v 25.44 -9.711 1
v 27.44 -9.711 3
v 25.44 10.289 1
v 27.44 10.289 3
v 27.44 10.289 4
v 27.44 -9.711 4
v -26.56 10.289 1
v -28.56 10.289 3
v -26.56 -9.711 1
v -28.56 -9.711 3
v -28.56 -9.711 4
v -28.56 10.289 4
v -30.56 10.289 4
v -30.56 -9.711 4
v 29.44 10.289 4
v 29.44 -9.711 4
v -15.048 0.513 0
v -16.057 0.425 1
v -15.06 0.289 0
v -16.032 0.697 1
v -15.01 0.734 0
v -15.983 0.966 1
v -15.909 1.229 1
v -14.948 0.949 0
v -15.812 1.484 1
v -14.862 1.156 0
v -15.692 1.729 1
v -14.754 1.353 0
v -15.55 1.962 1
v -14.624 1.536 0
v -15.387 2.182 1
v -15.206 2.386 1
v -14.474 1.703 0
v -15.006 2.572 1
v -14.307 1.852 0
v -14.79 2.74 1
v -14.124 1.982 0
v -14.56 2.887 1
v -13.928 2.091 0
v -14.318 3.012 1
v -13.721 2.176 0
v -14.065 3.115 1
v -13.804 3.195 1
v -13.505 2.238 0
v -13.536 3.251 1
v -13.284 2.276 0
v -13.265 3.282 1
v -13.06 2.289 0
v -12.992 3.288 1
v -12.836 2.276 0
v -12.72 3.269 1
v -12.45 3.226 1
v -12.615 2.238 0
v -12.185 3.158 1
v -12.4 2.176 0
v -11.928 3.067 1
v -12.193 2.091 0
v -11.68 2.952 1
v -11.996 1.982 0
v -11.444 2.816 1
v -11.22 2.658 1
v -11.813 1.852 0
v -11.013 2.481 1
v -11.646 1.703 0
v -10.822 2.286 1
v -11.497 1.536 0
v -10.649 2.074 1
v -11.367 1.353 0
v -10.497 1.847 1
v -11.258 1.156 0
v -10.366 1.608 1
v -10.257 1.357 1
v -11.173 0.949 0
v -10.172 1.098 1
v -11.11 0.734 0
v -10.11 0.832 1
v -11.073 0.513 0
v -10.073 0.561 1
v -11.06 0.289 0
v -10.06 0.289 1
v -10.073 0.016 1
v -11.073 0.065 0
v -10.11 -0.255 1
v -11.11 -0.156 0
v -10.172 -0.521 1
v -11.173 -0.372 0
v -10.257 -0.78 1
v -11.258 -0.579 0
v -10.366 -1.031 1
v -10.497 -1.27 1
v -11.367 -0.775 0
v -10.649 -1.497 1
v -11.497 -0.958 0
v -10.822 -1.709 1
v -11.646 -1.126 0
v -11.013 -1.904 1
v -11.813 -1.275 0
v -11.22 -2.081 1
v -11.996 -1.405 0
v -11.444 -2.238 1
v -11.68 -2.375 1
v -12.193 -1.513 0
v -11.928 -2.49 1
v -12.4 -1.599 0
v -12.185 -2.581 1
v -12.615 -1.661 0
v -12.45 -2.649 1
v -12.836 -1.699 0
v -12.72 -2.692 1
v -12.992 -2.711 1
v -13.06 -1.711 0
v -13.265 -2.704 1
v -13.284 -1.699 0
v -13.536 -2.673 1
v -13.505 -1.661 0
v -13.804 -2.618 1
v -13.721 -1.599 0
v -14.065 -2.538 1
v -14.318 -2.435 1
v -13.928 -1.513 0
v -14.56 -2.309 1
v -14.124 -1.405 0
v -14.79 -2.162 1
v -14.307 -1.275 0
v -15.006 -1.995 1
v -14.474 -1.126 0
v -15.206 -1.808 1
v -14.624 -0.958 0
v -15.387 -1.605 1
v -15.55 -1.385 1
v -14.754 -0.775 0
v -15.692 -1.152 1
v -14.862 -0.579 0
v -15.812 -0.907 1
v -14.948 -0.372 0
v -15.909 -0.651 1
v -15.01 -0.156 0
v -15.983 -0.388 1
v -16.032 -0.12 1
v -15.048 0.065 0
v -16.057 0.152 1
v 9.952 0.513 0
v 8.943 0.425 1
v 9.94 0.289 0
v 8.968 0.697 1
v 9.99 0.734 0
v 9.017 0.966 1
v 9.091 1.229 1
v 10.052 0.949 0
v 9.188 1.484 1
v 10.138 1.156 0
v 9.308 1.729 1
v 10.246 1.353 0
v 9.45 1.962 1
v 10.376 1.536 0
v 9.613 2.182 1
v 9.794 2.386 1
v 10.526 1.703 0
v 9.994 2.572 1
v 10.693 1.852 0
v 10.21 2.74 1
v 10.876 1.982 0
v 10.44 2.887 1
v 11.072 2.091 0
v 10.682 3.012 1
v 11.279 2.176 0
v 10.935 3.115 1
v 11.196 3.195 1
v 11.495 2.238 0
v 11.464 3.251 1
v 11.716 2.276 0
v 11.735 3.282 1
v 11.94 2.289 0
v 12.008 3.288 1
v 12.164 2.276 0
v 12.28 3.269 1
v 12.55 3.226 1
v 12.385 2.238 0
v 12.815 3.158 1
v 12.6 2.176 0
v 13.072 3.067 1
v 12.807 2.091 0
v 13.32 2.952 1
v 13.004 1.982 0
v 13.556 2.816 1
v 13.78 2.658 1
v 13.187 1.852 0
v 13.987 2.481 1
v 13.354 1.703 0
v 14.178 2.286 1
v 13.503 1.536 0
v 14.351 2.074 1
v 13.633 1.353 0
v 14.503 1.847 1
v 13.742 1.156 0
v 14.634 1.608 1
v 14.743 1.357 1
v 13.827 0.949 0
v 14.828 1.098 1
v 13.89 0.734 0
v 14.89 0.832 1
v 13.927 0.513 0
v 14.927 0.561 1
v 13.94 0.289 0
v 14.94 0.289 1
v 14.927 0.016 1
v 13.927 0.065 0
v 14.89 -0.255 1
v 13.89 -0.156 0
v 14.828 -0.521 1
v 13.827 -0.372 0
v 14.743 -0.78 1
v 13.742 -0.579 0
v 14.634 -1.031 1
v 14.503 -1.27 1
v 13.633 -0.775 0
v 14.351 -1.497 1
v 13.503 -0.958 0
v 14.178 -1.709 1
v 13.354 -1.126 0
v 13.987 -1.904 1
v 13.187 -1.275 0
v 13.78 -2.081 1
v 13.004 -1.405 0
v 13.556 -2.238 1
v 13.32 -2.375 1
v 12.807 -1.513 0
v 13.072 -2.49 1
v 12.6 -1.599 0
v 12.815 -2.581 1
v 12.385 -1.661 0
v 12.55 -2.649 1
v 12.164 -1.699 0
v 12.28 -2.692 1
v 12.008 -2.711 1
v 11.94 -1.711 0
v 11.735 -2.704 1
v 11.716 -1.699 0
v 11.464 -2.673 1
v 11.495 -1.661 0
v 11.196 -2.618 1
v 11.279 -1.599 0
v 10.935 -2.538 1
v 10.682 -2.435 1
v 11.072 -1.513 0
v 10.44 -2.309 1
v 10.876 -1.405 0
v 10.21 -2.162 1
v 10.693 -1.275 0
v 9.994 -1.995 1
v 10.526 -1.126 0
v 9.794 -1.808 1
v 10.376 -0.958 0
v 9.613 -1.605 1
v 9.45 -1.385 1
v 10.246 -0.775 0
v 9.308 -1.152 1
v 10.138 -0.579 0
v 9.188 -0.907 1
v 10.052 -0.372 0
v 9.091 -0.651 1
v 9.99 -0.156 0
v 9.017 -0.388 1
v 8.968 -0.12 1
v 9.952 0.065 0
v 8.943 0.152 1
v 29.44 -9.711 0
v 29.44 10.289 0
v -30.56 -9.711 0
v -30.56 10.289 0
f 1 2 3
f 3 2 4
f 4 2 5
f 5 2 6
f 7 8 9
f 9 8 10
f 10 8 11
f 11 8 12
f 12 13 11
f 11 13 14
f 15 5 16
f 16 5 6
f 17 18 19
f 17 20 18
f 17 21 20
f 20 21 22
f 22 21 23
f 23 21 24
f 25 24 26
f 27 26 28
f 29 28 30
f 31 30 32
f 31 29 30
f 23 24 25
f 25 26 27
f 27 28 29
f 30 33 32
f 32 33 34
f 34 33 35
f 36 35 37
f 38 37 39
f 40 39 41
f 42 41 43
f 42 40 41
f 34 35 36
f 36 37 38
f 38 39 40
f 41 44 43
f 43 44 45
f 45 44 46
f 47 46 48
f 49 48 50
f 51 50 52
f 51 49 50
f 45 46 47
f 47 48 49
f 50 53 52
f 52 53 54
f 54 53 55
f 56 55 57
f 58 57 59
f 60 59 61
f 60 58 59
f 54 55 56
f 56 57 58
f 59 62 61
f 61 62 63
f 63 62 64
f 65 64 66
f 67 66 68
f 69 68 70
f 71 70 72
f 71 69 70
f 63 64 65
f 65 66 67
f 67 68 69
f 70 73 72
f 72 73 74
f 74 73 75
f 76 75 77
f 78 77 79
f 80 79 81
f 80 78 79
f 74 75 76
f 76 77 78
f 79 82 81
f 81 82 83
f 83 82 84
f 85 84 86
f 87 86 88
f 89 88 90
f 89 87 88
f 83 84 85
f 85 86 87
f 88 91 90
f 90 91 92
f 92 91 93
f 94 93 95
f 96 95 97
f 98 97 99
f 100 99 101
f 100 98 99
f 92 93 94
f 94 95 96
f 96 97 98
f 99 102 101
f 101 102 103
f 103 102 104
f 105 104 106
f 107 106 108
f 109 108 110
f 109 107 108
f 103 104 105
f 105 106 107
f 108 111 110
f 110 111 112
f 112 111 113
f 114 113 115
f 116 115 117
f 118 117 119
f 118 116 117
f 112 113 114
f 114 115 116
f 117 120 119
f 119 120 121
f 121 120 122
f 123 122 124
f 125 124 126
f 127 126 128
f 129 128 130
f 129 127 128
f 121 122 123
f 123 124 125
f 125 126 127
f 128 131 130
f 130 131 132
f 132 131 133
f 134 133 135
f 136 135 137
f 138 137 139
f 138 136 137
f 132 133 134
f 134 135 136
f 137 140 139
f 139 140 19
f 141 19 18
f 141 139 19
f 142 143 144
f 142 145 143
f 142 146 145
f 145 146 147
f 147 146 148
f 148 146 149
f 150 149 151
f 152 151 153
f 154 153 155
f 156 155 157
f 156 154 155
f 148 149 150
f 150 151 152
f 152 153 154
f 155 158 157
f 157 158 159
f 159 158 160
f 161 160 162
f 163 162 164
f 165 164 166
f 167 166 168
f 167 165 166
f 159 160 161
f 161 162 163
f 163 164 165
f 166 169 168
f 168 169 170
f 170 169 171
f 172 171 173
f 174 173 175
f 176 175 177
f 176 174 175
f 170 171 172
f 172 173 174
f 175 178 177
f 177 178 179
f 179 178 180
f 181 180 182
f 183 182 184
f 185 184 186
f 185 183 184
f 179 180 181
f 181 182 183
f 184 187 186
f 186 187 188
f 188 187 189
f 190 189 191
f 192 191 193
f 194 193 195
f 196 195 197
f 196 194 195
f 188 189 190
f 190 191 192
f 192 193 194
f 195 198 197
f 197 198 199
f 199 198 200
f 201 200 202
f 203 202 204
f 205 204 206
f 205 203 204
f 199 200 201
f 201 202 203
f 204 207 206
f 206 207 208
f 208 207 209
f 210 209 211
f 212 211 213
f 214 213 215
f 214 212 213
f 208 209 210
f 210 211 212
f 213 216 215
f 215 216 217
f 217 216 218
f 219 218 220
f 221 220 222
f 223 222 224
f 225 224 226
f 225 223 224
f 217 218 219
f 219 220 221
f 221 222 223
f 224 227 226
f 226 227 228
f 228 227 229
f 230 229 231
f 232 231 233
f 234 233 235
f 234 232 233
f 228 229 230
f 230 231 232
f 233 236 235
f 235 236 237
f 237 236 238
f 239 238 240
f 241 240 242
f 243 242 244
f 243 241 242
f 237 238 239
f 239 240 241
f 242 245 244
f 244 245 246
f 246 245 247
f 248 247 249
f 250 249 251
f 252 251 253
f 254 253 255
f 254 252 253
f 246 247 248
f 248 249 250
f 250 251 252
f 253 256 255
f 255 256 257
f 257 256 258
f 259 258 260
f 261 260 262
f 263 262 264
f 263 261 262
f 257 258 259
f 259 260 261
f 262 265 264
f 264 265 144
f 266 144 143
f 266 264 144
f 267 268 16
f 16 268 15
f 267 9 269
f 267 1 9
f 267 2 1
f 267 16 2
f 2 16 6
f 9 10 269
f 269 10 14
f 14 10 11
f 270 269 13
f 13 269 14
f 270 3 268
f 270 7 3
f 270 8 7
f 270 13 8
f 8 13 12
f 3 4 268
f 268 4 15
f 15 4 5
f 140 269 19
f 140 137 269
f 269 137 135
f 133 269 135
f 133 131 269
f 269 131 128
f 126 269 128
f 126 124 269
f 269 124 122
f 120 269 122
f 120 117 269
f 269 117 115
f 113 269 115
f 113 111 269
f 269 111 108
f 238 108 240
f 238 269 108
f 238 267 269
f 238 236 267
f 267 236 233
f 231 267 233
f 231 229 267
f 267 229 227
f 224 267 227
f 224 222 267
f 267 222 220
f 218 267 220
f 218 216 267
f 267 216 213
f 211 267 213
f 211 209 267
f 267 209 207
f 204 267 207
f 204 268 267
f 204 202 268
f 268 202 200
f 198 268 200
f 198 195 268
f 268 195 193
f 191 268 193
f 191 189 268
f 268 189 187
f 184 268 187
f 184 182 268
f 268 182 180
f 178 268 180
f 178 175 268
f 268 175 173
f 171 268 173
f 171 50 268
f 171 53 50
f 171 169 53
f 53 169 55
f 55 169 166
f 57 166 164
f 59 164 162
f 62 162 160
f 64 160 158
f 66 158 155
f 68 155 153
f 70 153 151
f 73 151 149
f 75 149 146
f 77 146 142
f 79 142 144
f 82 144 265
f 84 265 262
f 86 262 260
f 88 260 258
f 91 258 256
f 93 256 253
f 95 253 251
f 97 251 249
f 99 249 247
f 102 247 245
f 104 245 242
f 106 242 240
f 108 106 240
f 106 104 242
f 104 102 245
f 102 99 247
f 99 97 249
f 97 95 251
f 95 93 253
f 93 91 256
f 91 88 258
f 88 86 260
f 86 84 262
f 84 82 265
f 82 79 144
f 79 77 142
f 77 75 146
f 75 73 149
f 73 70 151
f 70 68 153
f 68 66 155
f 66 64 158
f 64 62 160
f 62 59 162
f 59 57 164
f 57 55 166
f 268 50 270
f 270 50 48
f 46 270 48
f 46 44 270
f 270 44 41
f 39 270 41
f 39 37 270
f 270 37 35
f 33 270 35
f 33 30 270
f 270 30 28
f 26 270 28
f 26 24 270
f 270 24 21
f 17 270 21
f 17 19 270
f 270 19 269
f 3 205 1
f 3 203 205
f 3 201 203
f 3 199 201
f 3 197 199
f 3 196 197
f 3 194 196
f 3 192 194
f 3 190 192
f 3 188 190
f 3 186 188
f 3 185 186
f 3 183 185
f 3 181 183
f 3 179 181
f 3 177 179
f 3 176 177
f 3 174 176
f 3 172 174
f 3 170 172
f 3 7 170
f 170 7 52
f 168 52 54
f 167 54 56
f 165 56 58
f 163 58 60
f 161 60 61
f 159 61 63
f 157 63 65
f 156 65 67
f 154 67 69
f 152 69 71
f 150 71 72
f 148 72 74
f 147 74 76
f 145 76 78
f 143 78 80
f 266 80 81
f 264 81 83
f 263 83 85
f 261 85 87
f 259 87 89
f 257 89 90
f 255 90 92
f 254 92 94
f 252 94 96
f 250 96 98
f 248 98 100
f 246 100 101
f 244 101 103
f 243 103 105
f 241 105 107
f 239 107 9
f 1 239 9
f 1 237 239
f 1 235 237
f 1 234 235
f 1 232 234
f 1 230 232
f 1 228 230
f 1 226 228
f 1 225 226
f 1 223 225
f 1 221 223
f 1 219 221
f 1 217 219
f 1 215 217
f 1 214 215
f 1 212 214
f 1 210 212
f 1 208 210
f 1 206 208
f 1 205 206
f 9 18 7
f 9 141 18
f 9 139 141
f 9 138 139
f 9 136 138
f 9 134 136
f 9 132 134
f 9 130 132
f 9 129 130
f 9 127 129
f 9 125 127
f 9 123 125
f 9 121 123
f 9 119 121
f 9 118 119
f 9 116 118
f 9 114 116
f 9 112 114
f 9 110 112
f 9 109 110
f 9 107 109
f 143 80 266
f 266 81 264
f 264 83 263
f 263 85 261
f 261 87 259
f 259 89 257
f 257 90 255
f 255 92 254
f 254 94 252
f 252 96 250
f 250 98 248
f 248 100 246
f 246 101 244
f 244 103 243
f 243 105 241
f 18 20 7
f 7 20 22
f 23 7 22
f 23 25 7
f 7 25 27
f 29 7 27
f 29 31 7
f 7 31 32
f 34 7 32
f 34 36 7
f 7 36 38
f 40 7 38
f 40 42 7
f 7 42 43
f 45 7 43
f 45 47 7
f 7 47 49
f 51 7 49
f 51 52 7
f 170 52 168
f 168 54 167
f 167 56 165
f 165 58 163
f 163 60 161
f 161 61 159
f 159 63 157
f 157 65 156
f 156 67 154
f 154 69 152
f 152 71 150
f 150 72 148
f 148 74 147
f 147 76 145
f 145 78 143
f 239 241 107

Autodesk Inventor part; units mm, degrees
ref_plane "YZ Plane" through (0, 0, 0) normal (1, 0, 0) x (0, 1, 0)
ref_plane "XZ Plane" through (0, 0, 0) normal (0, 1, 0) x (-1, 0, 0)
ref_plane "XY Plane" through (0, 0, 0) normal (0, 0, 1) x (1, 0, 0)
sketch "Sketch1" plane through (0, 0, 0) normal (0, 0, 1) x (1, 0, 0)
  line L0 (-30.5603, 10.2886) -> (29.4397, 10.2886)
  line L1 (29.4397, 10.2886) -> (29.4397, -9.7114)
  line L2 (29.4397, -9.7114) -> (-30.5603, -9.7114)
  line L3 (-30.5603, -9.7114) -> (-30.5603, 10.2886)
  point P0 (0, 0)
  dimension "d0" = 60
  dimension "d1" = 20
extrude "Extrusion1" add sketch "Sketch1" along normal blind 1
sketch "Sketch2" plane through (0, 0, 1) normal (0, 0, 1) x (1, 0, 0)
  line L0 (-30.5603, 10.2886) -> (-30.5603, -9.7114) projected
  line L1 (-30.5603, 10.2886) -> (29.4397, 10.2886) projected
  line L2 (29.4397, -9.7114) -> (29.4397, 10.2886) projected
  point P0 (0, 0)
  point P1 (-13.0603, 0.2886)
  point P2 (11.9397, 0.2886)
  dimension "d4" = 25
  dimension "d5" = 17.5
  dimension "d6" = 10
  dimension "d7" = 10
  dimension "d8" = 17.5
hole "Hole1" at (-13.0603, 0.2886, 1) at (11.9397, 0.2886, 1) direction (0, 0, -1) diameter 3 depth 8 tip angle 118 countersink diameter 6 countersink angle 90
sketch "Sketch3" plane through (0, 0, 1) normal (0, 0, 1) x (1, 0, 0)
  line L0 (-30.5603, 10.2886) -> (-28.5603, 10.2886)
  line L1 (-28.5603, 10.2886) -> (-28.5603, -9.7114)
  line L2 (-28.5603, -9.7114) -> (-30.5603, -9.7114)
  line L3 (-30.5603, -9.7114) -> (-30.5603, 10.2886)
  line L4 (29.4397, 10.2886) -> (27.4397, 10.2886)
  line L5 (27.4397, 10.2886) -> (27.4397, -9.7114)
  line L6 (27.4397, -9.7114) -> (29.4397, -9.7114)
  line L7 (29.4397, -9.7114) -> (29.4397, 10.2886)
  line L8 (-30.5603, -9.7114) -> (29.4397, -9.7114) projected
  point P0 (0, 0)
  dimension "d16" = 2
  dimension "d17" = 2
extrude "Extrusion2" add sketch "Sketch3" along normal blind 3
chamfer "Chamfer1" distance 2 angle 45 2 edges at (-28.5603, 0.2886, 1) (27.4397, 0.2886, 1)
properties part number "head mount"
